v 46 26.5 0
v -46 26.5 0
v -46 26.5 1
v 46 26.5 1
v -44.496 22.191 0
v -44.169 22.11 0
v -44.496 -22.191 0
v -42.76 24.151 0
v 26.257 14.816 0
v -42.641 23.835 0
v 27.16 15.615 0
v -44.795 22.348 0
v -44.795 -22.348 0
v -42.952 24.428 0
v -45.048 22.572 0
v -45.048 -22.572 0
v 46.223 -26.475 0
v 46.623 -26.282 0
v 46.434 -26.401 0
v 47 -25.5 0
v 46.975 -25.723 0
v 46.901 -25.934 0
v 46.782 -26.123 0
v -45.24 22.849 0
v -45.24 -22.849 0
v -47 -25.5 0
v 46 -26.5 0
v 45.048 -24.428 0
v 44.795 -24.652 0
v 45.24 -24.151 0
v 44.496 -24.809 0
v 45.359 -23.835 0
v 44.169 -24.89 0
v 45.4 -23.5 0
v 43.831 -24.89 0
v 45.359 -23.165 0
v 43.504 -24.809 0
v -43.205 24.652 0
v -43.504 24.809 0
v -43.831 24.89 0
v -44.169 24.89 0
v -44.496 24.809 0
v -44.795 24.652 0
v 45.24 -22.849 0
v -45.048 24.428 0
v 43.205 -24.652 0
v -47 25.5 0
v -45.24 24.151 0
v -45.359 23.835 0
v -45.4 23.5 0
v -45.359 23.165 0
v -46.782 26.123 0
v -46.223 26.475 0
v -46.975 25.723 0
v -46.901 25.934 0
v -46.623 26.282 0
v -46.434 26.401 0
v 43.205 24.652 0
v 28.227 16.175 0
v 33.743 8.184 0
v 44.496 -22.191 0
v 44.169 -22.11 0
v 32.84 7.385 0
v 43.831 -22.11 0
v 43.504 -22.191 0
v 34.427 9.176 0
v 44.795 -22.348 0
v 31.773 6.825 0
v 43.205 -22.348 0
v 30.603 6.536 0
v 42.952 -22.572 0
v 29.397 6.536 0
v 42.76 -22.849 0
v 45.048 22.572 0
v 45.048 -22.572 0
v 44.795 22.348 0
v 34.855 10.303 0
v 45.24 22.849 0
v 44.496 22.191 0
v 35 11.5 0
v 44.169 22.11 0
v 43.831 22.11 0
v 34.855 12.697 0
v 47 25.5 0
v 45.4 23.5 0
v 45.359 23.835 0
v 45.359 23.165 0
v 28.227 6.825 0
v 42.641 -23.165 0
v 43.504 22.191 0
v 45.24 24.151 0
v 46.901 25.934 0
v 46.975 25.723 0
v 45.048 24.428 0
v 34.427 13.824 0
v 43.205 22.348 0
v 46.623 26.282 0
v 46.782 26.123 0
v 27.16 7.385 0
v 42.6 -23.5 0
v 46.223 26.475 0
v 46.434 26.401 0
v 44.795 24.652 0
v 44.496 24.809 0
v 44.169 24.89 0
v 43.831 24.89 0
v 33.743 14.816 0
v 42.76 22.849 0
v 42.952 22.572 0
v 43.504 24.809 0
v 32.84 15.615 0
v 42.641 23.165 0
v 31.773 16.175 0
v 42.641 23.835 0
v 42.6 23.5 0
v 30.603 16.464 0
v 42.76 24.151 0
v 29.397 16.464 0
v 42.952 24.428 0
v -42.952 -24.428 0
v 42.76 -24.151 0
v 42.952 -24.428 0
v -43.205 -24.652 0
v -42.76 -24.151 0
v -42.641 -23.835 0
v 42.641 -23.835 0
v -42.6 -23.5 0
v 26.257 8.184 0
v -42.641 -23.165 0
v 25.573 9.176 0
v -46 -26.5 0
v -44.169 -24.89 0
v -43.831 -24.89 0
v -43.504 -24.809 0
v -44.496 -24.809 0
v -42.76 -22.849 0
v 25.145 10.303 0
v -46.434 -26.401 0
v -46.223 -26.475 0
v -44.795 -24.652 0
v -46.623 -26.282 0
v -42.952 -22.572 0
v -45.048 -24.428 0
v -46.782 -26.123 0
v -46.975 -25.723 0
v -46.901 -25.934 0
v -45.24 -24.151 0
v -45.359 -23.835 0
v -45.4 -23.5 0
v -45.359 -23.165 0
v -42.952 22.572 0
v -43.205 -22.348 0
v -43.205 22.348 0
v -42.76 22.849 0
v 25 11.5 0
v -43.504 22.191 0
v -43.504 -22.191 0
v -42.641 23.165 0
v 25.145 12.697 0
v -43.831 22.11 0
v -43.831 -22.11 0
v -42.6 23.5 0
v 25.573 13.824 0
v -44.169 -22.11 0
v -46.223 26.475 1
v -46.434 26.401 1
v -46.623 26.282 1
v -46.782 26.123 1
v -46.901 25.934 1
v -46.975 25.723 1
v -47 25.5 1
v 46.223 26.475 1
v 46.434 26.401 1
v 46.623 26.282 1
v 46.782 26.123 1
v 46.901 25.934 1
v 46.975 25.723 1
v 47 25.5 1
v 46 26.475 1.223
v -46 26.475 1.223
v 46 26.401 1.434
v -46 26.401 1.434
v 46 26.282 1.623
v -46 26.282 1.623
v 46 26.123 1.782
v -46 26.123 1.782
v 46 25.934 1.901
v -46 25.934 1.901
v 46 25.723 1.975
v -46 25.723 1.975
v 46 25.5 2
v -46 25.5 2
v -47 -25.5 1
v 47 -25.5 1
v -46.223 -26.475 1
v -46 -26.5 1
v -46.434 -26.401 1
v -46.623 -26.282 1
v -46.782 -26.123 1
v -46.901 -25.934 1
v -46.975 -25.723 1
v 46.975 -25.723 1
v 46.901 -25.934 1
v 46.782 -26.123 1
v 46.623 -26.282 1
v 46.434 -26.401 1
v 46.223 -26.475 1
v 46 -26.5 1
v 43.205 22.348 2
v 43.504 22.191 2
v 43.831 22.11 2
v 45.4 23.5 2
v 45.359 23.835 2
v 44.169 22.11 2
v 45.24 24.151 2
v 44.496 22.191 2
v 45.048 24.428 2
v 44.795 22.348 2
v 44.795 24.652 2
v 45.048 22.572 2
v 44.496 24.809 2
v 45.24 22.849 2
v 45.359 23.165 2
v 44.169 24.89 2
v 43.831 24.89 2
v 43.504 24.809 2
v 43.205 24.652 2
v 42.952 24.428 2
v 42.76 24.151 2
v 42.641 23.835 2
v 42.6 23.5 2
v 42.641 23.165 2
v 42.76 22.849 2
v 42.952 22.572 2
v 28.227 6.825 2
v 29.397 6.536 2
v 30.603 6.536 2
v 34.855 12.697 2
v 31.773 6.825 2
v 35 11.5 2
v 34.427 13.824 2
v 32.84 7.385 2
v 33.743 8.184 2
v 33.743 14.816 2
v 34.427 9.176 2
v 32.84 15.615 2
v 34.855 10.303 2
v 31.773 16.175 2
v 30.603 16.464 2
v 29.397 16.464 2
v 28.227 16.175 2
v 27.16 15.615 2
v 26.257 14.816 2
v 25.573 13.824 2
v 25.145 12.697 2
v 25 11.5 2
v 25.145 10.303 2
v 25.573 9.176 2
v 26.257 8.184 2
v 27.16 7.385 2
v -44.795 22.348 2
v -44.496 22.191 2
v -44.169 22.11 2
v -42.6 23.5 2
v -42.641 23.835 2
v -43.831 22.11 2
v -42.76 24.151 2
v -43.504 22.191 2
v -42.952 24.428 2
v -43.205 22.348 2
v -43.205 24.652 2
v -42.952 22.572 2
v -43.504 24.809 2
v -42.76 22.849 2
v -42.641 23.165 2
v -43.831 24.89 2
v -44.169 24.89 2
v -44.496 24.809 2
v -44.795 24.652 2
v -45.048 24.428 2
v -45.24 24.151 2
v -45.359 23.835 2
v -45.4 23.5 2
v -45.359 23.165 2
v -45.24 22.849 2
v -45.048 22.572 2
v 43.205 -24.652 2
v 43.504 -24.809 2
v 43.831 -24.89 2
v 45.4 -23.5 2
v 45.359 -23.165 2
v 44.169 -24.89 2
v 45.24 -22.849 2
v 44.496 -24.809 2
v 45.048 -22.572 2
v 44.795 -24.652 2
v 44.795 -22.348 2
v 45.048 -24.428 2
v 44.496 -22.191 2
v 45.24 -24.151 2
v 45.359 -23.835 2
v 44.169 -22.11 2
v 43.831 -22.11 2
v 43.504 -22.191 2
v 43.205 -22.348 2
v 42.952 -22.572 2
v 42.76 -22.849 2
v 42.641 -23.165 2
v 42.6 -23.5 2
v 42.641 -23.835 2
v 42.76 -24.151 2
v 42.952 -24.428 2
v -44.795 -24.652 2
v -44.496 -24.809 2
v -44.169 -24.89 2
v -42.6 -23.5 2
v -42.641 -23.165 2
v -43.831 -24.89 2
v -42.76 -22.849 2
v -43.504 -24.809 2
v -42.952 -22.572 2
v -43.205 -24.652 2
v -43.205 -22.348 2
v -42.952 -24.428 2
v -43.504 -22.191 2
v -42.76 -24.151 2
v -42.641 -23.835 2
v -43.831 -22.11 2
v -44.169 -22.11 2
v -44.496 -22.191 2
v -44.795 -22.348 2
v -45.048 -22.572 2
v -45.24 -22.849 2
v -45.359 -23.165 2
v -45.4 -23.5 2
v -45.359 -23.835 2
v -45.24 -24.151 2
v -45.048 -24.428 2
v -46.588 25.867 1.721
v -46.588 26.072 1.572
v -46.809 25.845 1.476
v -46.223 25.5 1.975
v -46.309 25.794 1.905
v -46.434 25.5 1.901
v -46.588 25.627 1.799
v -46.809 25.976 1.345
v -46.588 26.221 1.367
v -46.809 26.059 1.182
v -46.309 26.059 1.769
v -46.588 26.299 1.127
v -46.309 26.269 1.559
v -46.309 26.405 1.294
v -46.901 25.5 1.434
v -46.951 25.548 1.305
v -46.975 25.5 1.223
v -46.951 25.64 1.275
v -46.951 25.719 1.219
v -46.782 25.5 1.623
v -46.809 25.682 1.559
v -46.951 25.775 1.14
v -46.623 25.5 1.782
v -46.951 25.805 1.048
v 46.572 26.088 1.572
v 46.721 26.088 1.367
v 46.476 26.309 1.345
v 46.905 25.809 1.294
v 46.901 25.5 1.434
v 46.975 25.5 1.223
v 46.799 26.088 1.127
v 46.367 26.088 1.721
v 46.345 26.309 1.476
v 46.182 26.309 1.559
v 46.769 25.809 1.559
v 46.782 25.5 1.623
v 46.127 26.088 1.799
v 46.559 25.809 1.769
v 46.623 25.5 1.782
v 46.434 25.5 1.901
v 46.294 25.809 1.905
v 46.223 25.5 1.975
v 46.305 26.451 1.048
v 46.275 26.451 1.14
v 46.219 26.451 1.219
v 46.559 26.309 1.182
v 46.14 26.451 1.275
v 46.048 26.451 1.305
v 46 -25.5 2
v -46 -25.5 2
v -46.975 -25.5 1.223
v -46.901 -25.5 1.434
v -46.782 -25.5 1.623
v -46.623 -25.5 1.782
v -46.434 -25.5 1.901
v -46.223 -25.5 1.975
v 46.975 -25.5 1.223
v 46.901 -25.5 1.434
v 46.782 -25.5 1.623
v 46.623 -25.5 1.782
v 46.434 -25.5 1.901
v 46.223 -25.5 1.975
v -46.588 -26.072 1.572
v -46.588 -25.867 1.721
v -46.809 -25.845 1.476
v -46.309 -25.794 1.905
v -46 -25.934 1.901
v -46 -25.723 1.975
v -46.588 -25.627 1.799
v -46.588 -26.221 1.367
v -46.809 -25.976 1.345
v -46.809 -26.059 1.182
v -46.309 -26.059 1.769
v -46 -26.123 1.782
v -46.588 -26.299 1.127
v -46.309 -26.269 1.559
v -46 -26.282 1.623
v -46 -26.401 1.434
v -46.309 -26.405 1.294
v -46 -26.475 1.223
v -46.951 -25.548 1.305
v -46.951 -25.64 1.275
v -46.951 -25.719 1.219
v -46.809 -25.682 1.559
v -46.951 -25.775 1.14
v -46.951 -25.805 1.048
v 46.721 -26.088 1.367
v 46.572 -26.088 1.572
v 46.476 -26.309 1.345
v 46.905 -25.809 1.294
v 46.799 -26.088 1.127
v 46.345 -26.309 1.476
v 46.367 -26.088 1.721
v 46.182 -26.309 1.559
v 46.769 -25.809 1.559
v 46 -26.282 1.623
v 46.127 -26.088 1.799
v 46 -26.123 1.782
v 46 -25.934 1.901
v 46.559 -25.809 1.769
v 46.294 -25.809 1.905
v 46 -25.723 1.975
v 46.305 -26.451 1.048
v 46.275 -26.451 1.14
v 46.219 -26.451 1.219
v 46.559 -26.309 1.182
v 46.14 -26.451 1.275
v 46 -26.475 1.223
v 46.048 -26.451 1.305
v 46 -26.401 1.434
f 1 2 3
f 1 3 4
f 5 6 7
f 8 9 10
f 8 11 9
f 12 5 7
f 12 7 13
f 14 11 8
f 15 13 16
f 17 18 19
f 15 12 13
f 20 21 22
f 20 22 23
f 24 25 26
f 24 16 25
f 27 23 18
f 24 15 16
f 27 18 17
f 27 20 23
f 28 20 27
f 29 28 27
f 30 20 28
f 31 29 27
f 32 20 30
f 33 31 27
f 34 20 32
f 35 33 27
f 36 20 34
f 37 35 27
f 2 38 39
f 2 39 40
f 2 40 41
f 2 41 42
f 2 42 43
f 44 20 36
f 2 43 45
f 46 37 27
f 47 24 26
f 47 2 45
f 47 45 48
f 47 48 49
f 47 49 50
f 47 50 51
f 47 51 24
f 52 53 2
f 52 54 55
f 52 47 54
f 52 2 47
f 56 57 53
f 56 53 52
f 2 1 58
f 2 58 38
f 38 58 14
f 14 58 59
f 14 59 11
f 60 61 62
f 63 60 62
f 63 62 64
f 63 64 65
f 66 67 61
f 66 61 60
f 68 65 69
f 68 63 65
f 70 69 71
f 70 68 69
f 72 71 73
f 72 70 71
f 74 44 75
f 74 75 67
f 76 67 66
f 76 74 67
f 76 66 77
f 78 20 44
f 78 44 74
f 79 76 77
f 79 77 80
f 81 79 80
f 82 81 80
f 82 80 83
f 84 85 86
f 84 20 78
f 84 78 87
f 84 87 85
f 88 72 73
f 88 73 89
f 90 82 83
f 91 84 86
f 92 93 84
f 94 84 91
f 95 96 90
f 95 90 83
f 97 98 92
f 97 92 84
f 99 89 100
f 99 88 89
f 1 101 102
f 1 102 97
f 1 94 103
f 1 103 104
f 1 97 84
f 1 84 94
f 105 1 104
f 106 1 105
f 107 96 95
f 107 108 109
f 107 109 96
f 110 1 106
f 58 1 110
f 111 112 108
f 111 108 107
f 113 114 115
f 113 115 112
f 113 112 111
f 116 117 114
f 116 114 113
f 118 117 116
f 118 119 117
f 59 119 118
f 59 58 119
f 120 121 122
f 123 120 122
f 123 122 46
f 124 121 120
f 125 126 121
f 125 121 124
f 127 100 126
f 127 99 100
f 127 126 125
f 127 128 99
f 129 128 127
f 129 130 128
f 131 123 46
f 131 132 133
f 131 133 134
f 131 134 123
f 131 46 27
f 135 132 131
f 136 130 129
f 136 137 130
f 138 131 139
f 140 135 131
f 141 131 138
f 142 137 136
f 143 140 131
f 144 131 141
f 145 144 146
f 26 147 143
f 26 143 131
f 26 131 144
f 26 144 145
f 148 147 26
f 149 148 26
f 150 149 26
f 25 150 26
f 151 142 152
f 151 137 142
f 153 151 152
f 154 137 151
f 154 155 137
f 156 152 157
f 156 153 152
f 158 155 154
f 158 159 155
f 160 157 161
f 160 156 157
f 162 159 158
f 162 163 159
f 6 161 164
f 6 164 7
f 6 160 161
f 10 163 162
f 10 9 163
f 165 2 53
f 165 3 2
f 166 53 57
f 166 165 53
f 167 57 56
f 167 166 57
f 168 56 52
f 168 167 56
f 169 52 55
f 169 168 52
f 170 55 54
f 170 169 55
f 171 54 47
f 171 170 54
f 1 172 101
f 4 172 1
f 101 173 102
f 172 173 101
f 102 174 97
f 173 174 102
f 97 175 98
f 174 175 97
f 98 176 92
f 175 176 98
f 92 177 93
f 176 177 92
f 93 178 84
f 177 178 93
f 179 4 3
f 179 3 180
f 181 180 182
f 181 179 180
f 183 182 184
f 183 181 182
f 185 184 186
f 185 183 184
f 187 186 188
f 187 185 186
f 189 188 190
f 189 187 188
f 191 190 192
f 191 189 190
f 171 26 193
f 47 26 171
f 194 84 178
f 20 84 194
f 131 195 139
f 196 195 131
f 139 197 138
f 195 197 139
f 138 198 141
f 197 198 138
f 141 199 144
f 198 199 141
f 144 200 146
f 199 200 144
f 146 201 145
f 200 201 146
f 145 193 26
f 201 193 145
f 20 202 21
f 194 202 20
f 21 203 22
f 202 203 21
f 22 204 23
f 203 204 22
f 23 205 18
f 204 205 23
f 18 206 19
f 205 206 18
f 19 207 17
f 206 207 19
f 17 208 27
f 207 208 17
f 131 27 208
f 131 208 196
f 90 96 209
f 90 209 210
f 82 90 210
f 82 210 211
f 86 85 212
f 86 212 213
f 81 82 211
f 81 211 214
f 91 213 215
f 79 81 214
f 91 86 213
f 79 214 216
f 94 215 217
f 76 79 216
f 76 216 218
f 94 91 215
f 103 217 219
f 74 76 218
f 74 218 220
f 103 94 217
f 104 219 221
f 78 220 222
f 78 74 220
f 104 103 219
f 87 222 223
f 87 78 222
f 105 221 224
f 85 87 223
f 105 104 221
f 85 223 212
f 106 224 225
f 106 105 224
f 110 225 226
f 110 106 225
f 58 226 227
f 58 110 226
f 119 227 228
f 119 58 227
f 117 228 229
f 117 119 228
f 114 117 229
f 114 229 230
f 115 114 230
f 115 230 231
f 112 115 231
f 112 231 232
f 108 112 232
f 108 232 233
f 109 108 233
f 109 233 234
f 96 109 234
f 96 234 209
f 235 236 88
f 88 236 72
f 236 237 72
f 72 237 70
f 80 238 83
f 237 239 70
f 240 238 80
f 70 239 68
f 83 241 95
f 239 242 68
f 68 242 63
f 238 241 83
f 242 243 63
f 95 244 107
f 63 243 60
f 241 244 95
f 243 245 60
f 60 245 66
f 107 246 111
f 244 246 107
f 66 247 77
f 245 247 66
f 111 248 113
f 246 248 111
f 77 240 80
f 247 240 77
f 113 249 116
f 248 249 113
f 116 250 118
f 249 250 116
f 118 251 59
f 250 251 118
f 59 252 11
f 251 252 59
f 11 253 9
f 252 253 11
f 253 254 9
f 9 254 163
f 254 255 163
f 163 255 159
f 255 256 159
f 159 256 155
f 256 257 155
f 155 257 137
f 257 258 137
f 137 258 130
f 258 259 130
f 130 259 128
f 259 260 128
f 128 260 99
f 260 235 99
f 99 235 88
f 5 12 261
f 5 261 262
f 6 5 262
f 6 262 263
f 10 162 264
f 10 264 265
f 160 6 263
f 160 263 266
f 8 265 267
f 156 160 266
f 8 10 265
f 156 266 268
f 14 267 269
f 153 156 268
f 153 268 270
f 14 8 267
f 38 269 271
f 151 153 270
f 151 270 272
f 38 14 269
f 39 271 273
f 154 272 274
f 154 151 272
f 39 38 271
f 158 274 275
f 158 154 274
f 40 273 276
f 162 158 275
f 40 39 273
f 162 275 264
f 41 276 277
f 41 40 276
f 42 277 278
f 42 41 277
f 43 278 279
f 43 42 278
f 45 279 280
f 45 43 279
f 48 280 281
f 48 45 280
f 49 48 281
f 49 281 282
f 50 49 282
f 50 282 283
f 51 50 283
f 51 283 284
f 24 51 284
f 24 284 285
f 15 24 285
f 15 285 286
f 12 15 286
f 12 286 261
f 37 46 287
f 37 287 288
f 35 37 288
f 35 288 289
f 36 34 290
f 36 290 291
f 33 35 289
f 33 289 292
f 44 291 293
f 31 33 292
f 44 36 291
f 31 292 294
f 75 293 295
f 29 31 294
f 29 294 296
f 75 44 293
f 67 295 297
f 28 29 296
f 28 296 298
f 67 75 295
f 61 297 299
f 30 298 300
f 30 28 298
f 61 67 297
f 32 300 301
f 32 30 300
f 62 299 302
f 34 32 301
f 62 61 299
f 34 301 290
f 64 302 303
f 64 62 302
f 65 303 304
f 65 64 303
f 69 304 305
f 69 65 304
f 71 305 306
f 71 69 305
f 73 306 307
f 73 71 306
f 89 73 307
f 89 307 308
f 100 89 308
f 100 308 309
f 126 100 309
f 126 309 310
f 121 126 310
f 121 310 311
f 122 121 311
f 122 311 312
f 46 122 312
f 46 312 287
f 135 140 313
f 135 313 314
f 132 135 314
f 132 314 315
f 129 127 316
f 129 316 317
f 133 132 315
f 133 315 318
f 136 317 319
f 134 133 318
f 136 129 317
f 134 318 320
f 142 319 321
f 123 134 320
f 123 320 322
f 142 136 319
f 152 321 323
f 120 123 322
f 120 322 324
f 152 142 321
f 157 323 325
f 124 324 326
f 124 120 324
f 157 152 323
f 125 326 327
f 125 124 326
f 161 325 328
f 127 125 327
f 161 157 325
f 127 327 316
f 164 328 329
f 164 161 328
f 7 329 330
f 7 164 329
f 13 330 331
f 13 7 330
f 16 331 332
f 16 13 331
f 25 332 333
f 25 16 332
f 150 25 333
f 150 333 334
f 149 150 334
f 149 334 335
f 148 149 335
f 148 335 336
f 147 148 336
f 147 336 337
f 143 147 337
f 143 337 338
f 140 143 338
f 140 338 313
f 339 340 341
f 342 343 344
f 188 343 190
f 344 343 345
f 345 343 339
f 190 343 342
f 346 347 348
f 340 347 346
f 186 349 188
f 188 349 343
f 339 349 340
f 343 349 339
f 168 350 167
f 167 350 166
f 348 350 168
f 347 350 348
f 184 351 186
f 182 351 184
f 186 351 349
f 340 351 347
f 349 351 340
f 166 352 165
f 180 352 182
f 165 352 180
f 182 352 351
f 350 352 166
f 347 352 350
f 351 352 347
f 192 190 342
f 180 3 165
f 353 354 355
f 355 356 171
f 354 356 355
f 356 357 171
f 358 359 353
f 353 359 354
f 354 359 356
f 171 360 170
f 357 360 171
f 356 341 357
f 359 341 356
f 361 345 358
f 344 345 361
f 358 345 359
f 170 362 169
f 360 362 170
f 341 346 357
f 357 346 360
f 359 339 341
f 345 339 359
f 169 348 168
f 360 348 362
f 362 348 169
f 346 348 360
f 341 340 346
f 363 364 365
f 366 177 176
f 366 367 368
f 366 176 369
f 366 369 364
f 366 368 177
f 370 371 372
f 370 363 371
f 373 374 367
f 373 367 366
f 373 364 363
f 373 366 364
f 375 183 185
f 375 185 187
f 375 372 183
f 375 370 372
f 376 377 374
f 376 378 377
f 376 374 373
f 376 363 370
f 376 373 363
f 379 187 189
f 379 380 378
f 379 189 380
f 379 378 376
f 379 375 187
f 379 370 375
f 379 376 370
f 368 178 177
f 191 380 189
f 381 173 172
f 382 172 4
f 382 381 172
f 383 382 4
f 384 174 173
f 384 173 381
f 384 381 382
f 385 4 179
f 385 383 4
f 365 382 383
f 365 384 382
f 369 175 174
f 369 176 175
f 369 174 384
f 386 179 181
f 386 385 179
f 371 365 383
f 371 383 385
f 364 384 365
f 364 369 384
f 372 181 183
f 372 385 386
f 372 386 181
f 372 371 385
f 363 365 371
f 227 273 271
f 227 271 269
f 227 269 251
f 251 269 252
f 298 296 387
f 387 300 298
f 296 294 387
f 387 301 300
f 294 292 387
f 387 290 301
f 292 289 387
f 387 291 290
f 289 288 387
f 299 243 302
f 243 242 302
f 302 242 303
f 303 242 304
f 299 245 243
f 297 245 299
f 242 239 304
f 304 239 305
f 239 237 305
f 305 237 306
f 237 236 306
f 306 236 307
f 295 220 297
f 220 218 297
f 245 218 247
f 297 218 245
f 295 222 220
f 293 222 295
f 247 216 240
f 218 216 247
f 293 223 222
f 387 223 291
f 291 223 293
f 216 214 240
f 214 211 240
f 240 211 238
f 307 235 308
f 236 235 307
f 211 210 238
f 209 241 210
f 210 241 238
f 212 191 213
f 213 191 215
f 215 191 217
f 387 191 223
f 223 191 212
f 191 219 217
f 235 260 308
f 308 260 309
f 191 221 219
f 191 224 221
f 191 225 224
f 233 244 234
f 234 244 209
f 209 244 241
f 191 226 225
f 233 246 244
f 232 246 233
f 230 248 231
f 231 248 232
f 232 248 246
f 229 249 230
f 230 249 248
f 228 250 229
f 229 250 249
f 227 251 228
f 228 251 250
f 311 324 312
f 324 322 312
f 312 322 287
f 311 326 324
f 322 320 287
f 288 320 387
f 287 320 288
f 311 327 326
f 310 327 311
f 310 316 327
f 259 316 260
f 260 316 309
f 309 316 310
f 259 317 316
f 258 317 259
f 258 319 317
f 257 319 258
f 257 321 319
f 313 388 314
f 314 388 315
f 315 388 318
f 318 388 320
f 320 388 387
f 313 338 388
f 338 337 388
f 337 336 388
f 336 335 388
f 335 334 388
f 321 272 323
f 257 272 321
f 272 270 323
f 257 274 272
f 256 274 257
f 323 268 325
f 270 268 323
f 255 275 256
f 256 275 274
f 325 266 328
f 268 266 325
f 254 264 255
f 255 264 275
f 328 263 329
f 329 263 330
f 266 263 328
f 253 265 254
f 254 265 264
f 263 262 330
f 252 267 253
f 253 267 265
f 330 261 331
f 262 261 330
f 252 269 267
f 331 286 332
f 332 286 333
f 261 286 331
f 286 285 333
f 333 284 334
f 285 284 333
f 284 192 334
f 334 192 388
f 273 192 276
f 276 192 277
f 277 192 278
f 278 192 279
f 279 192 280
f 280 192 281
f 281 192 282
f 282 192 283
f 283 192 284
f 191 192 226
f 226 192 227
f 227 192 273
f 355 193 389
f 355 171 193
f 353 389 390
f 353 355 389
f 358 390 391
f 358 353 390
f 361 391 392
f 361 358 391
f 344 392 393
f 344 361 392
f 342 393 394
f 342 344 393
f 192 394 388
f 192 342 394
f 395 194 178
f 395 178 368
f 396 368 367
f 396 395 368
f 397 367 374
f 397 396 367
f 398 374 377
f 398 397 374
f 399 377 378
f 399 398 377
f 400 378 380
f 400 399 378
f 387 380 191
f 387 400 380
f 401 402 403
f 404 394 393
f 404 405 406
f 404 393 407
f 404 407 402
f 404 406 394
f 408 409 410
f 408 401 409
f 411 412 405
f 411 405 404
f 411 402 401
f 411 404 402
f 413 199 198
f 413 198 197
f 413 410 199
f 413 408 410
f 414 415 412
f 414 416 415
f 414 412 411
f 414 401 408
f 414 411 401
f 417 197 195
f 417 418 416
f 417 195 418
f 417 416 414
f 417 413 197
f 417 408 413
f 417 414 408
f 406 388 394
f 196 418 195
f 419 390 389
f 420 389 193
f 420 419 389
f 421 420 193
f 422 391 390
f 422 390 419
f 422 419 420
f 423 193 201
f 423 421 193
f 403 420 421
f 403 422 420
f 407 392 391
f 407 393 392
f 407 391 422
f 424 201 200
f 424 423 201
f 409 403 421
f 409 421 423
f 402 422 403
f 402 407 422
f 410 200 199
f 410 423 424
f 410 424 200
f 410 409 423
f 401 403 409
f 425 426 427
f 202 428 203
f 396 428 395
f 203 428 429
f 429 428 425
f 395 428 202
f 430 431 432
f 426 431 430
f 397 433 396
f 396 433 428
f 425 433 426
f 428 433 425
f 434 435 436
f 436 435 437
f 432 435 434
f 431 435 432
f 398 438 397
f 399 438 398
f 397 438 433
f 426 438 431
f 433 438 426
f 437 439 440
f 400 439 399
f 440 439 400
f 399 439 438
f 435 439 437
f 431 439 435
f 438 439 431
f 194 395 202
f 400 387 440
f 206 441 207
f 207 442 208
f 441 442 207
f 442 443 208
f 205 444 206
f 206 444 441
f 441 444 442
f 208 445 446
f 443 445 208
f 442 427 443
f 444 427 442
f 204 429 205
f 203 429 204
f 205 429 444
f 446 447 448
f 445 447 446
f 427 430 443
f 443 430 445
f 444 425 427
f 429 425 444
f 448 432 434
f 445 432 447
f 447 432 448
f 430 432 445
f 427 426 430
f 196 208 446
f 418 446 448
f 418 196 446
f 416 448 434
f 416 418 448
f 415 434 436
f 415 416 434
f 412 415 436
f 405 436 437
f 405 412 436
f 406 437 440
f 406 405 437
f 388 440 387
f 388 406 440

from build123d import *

# Parameters (mm, degrees)
SKETCH_W     = 94
SKETCH_H     = 53
SKETCH_R     = 1.4
PAD_DEPTH    = 2
FILLET_R     = 1
SKETCH001_R  = 5
POCKET_DEPTH = 5


with BuildPart() as part:
    # Sketch → Pad (new body)
    with BuildSketch(Plane.XY):
        Rectangle(SKETCH_W, SKETCH_H)
        with Locations((-44, 23.5)):
            Circle(SKETCH_R, mode=Mode.SUBTRACT)
        with Locations((44, 23.5)):
            Circle(SKETCH_R, mode=Mode.SUBTRACT)
        with Locations((44, -23.5)):
            Circle(SKETCH_R, mode=Mode.SUBTRACT)
        with Locations((-44, -23.5)):
            Circle(SKETCH_R, mode=Mode.SUBTRACT)
    extrude(amount=PAD_DEPTH)

    # Fillet
    fillet_edges = [part.edges().sort_by_distance(p)[0] for p in [
        (47, 0, 2),
        (47, 26.5, 1),
        (47, -26.5, 1),
        (0, -26.5, 2),
        (0, 26.5, 2),
        (-47, 0, 2),
        (-47, 26.5, 1),
        (-47, -26.5, 1),
    ]]
    fillet(fillet_edges, radius=FILLET_R)

    # Sketch001 (on Face17 of Fillet) → Pocket (cut)
    with BuildSketch(Plane.XY.offset(2)):
        with Locations((30, 11.5)):
            Circle(SKETCH001_R)
    extrude(amount=-POCKET_DEPTH, mode=Mode.SUBTRACT)


solid = part.part
